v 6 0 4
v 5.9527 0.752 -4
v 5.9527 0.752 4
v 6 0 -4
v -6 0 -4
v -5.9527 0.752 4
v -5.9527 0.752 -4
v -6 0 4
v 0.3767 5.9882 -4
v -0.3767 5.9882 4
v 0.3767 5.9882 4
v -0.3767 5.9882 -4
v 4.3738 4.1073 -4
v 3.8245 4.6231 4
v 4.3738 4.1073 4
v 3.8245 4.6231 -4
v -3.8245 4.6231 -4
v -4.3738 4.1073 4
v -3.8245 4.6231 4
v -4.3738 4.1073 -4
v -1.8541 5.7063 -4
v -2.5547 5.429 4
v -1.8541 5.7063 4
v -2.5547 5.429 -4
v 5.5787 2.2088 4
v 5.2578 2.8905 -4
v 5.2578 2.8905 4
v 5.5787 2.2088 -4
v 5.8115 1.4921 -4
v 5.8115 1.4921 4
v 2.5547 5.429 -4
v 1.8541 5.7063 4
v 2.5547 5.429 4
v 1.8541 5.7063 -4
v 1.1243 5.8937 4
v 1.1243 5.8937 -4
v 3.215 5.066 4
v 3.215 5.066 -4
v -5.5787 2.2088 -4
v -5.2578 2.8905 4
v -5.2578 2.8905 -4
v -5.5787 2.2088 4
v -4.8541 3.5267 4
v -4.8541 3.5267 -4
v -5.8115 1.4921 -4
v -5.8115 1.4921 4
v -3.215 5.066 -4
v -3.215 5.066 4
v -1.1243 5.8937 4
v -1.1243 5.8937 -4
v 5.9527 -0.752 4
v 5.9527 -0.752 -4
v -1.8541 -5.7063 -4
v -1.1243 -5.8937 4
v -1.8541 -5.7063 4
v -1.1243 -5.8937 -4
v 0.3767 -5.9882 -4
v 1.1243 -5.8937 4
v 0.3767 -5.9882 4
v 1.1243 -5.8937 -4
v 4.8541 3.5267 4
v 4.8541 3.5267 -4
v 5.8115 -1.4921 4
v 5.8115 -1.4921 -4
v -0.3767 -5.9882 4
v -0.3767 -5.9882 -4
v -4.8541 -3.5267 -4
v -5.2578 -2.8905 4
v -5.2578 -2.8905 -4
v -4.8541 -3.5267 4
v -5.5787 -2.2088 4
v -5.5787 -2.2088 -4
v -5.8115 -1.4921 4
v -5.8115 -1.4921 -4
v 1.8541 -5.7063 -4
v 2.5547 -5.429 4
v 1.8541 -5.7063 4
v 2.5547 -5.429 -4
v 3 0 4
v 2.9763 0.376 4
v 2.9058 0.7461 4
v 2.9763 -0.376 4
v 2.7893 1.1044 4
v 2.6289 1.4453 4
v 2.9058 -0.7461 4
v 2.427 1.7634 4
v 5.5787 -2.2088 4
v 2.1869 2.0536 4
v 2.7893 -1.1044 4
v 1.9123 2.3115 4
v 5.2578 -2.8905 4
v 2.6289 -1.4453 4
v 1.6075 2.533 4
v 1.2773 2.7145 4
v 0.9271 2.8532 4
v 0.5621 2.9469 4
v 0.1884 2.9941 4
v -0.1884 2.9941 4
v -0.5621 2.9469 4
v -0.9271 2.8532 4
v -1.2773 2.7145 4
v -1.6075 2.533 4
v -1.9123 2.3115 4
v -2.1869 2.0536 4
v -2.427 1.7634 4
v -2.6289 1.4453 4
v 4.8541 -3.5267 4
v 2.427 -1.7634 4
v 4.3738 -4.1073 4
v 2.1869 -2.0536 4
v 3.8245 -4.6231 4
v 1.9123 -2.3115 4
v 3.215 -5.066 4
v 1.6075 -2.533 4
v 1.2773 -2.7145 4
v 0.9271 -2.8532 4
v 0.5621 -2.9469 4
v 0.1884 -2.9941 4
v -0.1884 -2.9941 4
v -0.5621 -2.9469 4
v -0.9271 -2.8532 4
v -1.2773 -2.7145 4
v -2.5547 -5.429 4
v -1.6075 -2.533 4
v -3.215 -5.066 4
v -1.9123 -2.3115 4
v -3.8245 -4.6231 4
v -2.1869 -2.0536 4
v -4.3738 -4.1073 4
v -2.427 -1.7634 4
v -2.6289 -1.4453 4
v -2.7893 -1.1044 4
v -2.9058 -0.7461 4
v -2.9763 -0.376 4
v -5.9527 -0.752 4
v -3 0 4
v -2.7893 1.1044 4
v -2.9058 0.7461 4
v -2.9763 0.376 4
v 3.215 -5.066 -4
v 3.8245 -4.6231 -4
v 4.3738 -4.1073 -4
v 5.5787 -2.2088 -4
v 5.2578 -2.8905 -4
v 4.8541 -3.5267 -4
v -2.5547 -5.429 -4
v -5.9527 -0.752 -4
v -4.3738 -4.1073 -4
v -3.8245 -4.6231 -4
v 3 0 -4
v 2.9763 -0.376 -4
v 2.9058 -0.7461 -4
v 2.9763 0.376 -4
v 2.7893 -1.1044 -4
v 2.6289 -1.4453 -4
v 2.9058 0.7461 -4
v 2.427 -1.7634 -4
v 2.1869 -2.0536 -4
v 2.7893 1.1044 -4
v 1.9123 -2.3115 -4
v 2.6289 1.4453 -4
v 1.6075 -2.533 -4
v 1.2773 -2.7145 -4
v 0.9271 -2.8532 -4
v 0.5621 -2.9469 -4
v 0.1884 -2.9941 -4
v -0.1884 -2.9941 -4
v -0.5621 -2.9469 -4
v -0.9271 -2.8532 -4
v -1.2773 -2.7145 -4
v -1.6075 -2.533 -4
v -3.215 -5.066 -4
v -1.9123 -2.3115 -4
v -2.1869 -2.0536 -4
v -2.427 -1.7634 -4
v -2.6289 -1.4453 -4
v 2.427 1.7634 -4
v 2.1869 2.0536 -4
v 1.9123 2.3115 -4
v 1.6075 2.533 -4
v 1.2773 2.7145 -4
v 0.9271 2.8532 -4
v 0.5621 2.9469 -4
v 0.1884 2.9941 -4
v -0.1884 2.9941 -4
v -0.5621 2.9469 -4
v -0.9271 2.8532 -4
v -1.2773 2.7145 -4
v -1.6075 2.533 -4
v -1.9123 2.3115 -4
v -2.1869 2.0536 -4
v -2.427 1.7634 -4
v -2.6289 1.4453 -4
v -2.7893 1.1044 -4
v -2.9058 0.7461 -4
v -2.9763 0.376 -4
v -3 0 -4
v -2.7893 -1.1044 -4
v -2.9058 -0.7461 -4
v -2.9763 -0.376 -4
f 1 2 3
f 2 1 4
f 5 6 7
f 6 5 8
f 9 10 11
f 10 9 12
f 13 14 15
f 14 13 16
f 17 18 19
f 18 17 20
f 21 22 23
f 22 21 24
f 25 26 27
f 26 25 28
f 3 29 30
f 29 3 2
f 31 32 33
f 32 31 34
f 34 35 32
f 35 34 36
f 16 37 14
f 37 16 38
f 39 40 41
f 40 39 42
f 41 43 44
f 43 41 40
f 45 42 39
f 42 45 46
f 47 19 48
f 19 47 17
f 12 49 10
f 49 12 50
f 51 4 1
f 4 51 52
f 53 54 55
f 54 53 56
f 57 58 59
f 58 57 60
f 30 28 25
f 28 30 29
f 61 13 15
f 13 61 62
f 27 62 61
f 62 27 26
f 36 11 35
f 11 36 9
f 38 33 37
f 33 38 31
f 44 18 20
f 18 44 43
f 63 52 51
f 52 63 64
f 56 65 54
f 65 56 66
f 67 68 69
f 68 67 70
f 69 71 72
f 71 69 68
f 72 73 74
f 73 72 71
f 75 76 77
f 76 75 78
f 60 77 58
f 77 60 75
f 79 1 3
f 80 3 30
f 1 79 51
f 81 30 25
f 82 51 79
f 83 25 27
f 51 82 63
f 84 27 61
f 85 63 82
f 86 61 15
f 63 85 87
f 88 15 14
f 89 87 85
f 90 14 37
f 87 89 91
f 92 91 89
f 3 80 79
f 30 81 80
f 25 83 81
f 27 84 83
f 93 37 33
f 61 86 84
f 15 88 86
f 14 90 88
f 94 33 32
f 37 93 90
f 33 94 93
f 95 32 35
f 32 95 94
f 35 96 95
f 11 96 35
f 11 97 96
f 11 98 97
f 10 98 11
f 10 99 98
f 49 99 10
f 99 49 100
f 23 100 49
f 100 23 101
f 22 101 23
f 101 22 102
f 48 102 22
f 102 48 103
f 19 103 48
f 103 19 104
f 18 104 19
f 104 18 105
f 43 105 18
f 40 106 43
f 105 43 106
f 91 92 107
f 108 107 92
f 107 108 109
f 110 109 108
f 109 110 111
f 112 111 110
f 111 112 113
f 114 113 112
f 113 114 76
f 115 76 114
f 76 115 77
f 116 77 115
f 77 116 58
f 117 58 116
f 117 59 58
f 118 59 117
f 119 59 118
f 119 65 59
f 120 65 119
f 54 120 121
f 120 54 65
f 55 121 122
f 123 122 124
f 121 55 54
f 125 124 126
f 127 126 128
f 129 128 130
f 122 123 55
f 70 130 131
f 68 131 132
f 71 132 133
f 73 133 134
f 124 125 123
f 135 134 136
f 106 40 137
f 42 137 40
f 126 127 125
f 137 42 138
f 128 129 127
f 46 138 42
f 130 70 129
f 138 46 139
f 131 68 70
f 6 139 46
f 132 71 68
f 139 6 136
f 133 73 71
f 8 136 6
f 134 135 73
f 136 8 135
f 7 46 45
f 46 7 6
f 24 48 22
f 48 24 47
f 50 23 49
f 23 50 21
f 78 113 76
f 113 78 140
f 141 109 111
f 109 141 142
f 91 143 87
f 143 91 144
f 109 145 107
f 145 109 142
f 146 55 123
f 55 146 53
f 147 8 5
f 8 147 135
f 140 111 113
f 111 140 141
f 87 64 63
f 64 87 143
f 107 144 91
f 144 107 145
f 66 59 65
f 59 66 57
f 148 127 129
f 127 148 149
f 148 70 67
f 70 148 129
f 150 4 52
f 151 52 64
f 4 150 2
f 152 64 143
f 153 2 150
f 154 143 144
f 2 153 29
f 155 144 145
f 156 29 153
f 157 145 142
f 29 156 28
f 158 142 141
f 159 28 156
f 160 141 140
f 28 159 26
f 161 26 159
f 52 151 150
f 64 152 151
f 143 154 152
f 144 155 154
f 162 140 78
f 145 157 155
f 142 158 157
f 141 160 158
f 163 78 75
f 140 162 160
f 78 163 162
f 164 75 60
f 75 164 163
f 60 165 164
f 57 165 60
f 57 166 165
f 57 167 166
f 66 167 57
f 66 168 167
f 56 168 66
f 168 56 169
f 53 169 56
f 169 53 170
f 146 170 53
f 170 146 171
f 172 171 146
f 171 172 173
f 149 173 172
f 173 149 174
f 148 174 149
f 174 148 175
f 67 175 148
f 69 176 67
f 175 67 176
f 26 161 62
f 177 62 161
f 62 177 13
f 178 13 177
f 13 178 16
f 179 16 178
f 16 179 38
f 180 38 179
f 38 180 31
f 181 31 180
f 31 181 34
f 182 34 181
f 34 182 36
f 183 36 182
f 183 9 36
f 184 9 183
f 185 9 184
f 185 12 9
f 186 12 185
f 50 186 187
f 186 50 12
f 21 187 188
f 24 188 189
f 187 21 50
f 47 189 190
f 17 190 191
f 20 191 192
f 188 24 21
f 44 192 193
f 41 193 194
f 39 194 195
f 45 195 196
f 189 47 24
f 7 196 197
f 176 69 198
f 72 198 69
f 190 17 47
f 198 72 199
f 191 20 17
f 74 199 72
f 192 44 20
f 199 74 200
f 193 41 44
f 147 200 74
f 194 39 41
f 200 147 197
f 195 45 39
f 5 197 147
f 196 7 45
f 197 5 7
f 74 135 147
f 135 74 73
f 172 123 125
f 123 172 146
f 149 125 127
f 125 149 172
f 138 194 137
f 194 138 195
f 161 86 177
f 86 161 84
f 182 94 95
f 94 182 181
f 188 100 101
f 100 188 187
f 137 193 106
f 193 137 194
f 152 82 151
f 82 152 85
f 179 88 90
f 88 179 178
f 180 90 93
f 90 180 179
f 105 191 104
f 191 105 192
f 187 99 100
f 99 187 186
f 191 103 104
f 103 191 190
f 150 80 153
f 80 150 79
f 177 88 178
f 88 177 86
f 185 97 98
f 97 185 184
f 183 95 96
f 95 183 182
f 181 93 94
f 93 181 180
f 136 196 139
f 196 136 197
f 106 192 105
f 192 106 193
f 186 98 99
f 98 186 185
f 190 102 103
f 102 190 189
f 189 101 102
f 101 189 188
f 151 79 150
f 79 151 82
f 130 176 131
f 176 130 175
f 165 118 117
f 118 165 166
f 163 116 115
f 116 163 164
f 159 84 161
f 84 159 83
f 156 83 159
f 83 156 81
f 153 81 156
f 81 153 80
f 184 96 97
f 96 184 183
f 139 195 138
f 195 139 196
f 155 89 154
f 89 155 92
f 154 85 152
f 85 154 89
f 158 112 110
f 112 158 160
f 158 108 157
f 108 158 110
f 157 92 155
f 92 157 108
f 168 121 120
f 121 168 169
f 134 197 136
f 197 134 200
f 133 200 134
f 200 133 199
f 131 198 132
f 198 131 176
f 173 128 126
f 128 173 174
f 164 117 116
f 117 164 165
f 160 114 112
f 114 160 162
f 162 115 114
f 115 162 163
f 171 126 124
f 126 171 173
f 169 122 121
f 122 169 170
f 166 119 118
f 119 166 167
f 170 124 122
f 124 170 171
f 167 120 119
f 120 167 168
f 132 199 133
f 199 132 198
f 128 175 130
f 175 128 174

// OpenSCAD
$fn = 50;


difference() {
	union() {
		translate(v = [0, 0, -4.0000000000]) {
			cylinder(h = 8, r = 6.0000000000);
		}
	}
	union() {
		translate(v = [0, 0, -100.0000000000]) {
			cylinder(h = 200, r = 3.0000000000);
		}
	}
}
